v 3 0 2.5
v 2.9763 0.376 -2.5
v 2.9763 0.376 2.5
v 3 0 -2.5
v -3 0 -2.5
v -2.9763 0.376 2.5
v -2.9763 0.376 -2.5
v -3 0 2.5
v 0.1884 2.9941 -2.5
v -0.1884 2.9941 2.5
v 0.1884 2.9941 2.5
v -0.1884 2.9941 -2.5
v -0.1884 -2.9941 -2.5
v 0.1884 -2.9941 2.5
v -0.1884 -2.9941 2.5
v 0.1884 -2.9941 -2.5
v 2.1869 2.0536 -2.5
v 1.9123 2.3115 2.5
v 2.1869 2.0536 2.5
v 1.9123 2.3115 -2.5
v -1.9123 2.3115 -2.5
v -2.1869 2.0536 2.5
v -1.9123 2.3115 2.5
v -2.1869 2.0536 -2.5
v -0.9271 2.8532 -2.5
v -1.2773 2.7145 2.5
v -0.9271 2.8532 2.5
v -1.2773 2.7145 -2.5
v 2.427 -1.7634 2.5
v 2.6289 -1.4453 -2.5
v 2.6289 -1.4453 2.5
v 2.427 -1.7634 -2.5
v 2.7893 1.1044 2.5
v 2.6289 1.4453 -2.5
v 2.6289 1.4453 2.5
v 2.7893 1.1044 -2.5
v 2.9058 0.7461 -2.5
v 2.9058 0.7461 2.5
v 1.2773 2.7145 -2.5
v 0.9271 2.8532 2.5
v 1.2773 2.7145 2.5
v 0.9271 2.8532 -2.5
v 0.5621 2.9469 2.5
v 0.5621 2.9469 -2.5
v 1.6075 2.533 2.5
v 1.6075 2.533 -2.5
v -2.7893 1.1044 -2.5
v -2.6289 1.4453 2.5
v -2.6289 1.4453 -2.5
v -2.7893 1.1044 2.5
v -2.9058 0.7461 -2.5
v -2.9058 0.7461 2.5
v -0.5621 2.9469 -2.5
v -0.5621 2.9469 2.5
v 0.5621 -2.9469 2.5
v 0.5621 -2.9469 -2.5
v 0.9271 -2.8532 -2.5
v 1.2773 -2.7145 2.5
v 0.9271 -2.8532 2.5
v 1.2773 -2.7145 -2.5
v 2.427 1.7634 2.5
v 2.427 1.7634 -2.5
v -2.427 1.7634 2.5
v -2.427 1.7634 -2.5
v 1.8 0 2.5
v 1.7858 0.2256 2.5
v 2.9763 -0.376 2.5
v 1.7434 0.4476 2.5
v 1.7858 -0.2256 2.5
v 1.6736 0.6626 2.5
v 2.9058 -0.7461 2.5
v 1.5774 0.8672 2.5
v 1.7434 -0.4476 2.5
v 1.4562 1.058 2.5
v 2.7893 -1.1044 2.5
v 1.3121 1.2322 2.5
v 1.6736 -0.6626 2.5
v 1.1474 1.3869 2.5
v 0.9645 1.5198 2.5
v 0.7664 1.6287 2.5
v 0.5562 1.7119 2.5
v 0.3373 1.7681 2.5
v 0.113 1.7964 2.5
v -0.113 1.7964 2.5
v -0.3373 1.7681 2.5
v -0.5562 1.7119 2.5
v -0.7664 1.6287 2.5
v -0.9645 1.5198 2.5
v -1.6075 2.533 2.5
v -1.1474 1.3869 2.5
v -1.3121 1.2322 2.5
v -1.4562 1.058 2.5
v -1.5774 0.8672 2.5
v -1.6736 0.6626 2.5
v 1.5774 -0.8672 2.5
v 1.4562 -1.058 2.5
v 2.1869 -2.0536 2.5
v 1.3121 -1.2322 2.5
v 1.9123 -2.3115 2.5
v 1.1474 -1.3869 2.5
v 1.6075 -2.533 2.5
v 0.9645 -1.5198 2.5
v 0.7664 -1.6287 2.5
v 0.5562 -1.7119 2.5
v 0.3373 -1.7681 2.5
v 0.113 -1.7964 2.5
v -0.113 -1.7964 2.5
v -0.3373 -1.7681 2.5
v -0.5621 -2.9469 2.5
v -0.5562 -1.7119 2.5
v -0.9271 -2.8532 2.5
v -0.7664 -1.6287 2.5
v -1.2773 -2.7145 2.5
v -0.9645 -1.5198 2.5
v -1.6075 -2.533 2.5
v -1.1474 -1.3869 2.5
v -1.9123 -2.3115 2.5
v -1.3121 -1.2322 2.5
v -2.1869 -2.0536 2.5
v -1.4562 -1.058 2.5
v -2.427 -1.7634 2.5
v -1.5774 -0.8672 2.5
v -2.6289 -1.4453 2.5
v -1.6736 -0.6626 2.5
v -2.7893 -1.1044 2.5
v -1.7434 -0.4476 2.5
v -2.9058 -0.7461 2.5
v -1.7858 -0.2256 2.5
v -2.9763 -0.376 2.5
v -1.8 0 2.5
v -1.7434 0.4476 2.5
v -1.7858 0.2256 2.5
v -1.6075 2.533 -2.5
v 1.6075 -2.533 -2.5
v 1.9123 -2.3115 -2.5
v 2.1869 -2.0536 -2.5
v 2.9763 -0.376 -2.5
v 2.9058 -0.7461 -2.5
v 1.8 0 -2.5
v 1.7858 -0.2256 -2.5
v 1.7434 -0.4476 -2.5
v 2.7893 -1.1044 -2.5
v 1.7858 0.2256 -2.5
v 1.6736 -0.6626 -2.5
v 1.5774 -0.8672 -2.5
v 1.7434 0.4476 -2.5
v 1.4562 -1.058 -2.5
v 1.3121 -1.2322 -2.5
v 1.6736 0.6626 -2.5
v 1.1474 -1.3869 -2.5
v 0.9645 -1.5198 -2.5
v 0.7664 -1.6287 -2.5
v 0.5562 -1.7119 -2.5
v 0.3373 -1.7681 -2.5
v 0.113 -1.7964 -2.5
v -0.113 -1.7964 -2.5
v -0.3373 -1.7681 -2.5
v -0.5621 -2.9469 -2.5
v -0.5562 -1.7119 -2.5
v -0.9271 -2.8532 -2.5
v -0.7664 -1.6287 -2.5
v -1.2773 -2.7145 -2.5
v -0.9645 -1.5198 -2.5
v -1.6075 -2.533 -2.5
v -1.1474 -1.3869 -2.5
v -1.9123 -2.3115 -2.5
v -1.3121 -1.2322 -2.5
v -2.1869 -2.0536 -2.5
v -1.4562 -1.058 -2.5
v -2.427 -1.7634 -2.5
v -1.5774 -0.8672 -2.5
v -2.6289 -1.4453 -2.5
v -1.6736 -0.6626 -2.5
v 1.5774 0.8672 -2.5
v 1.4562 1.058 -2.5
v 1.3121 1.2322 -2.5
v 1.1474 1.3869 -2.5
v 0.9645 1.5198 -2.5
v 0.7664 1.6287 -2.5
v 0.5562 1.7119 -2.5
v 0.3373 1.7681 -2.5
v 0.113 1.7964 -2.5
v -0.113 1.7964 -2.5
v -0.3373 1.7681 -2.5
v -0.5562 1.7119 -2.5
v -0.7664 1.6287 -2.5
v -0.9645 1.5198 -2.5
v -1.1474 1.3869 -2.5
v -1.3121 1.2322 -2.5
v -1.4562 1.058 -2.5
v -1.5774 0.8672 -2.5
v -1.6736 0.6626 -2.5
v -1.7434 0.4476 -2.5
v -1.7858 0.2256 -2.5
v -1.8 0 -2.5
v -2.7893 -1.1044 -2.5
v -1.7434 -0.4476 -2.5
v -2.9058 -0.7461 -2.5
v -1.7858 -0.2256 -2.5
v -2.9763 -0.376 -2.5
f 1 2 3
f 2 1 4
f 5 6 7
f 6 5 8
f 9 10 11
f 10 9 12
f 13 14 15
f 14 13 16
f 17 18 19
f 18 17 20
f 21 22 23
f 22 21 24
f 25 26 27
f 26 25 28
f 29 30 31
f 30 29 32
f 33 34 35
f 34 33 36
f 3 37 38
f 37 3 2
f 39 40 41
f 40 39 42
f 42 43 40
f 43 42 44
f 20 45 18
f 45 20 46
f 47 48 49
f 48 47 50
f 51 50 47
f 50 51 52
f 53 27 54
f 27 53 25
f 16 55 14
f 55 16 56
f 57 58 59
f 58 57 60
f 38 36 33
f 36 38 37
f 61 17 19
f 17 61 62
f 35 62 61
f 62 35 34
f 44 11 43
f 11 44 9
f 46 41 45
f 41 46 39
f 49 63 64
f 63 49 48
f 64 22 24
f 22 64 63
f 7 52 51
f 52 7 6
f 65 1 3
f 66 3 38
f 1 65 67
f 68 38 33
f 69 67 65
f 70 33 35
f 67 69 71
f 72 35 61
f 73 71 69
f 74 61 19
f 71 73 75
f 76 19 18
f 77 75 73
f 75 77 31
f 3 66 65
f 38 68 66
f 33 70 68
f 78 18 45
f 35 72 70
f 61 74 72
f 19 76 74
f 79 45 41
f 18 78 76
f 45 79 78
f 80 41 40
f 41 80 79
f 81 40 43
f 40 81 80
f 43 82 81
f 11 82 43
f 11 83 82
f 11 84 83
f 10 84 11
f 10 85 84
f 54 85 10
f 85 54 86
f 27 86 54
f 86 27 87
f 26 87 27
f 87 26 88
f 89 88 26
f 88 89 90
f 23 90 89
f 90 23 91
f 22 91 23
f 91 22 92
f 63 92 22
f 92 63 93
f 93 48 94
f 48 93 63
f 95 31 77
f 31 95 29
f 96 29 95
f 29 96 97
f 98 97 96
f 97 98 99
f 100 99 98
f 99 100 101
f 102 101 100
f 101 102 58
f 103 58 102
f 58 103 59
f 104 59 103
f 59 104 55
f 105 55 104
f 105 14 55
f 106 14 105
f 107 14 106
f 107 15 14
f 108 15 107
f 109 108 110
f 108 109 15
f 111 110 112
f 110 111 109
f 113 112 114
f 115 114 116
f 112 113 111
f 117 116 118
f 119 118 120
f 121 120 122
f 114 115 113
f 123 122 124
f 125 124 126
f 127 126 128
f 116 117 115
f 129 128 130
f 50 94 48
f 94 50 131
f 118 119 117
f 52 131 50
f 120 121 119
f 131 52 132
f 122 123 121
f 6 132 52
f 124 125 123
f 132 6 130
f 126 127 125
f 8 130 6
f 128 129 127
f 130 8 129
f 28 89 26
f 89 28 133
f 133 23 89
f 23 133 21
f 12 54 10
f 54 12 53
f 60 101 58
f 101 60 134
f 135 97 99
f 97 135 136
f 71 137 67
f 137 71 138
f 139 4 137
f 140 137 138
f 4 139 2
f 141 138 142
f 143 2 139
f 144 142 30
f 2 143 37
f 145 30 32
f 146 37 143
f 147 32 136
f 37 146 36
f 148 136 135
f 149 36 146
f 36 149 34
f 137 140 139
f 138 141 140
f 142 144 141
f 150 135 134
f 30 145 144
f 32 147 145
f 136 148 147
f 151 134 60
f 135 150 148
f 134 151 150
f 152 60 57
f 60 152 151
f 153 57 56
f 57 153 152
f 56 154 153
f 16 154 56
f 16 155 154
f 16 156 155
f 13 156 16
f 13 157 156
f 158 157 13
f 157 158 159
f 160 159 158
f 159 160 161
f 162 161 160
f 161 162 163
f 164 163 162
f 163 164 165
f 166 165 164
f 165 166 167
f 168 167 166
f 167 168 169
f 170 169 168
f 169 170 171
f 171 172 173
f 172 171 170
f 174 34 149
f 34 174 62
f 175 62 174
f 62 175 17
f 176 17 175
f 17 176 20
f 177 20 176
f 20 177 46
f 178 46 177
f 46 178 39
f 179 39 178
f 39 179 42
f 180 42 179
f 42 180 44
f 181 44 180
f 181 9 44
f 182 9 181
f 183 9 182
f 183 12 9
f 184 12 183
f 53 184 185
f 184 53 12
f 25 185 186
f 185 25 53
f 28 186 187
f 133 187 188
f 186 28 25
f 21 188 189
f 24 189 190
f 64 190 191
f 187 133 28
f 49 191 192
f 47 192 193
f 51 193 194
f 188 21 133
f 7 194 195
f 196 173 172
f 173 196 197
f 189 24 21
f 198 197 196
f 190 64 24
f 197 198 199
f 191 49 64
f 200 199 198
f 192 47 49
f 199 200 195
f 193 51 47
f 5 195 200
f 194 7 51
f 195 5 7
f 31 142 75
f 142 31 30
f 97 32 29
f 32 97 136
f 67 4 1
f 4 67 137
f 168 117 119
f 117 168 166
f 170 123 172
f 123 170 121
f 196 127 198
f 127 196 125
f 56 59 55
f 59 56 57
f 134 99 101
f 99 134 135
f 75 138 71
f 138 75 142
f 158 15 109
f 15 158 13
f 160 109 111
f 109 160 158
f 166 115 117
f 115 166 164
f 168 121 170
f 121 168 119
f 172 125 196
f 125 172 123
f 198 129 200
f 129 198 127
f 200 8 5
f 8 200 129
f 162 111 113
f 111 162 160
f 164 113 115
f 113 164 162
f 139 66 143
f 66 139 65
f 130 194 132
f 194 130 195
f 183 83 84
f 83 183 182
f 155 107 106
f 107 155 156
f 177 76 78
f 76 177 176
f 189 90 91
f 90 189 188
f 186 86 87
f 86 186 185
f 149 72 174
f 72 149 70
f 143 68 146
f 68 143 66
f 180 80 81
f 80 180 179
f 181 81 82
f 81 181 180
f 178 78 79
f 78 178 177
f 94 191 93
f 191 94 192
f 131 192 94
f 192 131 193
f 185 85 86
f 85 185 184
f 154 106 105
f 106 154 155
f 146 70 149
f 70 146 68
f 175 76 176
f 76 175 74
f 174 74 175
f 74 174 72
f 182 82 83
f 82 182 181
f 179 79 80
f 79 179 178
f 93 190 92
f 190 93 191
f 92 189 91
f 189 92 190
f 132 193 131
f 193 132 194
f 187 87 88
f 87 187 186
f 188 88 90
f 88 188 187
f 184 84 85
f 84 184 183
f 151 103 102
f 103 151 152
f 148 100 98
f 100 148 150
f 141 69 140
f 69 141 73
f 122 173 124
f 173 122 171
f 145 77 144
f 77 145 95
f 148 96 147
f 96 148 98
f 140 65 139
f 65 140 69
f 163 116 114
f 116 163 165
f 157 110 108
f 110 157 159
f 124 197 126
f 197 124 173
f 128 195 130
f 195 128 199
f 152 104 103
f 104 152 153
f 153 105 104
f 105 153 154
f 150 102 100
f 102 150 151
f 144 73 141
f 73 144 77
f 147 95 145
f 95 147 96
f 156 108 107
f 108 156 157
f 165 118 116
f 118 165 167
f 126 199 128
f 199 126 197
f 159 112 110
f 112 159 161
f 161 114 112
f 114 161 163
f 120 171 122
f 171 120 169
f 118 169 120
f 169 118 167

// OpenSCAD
$fn = 50;


difference() {
	union() {
		translate(v = [0, 0, -2.5000000000]) {
			cylinder(h = 5, r = 3.0000000000);
		}
	}
	union() {
		translate(v = [0, 0, -100.0000000000]) {
			cylinder(h = 200, r = 1.8000000000);
		}
	}
}
